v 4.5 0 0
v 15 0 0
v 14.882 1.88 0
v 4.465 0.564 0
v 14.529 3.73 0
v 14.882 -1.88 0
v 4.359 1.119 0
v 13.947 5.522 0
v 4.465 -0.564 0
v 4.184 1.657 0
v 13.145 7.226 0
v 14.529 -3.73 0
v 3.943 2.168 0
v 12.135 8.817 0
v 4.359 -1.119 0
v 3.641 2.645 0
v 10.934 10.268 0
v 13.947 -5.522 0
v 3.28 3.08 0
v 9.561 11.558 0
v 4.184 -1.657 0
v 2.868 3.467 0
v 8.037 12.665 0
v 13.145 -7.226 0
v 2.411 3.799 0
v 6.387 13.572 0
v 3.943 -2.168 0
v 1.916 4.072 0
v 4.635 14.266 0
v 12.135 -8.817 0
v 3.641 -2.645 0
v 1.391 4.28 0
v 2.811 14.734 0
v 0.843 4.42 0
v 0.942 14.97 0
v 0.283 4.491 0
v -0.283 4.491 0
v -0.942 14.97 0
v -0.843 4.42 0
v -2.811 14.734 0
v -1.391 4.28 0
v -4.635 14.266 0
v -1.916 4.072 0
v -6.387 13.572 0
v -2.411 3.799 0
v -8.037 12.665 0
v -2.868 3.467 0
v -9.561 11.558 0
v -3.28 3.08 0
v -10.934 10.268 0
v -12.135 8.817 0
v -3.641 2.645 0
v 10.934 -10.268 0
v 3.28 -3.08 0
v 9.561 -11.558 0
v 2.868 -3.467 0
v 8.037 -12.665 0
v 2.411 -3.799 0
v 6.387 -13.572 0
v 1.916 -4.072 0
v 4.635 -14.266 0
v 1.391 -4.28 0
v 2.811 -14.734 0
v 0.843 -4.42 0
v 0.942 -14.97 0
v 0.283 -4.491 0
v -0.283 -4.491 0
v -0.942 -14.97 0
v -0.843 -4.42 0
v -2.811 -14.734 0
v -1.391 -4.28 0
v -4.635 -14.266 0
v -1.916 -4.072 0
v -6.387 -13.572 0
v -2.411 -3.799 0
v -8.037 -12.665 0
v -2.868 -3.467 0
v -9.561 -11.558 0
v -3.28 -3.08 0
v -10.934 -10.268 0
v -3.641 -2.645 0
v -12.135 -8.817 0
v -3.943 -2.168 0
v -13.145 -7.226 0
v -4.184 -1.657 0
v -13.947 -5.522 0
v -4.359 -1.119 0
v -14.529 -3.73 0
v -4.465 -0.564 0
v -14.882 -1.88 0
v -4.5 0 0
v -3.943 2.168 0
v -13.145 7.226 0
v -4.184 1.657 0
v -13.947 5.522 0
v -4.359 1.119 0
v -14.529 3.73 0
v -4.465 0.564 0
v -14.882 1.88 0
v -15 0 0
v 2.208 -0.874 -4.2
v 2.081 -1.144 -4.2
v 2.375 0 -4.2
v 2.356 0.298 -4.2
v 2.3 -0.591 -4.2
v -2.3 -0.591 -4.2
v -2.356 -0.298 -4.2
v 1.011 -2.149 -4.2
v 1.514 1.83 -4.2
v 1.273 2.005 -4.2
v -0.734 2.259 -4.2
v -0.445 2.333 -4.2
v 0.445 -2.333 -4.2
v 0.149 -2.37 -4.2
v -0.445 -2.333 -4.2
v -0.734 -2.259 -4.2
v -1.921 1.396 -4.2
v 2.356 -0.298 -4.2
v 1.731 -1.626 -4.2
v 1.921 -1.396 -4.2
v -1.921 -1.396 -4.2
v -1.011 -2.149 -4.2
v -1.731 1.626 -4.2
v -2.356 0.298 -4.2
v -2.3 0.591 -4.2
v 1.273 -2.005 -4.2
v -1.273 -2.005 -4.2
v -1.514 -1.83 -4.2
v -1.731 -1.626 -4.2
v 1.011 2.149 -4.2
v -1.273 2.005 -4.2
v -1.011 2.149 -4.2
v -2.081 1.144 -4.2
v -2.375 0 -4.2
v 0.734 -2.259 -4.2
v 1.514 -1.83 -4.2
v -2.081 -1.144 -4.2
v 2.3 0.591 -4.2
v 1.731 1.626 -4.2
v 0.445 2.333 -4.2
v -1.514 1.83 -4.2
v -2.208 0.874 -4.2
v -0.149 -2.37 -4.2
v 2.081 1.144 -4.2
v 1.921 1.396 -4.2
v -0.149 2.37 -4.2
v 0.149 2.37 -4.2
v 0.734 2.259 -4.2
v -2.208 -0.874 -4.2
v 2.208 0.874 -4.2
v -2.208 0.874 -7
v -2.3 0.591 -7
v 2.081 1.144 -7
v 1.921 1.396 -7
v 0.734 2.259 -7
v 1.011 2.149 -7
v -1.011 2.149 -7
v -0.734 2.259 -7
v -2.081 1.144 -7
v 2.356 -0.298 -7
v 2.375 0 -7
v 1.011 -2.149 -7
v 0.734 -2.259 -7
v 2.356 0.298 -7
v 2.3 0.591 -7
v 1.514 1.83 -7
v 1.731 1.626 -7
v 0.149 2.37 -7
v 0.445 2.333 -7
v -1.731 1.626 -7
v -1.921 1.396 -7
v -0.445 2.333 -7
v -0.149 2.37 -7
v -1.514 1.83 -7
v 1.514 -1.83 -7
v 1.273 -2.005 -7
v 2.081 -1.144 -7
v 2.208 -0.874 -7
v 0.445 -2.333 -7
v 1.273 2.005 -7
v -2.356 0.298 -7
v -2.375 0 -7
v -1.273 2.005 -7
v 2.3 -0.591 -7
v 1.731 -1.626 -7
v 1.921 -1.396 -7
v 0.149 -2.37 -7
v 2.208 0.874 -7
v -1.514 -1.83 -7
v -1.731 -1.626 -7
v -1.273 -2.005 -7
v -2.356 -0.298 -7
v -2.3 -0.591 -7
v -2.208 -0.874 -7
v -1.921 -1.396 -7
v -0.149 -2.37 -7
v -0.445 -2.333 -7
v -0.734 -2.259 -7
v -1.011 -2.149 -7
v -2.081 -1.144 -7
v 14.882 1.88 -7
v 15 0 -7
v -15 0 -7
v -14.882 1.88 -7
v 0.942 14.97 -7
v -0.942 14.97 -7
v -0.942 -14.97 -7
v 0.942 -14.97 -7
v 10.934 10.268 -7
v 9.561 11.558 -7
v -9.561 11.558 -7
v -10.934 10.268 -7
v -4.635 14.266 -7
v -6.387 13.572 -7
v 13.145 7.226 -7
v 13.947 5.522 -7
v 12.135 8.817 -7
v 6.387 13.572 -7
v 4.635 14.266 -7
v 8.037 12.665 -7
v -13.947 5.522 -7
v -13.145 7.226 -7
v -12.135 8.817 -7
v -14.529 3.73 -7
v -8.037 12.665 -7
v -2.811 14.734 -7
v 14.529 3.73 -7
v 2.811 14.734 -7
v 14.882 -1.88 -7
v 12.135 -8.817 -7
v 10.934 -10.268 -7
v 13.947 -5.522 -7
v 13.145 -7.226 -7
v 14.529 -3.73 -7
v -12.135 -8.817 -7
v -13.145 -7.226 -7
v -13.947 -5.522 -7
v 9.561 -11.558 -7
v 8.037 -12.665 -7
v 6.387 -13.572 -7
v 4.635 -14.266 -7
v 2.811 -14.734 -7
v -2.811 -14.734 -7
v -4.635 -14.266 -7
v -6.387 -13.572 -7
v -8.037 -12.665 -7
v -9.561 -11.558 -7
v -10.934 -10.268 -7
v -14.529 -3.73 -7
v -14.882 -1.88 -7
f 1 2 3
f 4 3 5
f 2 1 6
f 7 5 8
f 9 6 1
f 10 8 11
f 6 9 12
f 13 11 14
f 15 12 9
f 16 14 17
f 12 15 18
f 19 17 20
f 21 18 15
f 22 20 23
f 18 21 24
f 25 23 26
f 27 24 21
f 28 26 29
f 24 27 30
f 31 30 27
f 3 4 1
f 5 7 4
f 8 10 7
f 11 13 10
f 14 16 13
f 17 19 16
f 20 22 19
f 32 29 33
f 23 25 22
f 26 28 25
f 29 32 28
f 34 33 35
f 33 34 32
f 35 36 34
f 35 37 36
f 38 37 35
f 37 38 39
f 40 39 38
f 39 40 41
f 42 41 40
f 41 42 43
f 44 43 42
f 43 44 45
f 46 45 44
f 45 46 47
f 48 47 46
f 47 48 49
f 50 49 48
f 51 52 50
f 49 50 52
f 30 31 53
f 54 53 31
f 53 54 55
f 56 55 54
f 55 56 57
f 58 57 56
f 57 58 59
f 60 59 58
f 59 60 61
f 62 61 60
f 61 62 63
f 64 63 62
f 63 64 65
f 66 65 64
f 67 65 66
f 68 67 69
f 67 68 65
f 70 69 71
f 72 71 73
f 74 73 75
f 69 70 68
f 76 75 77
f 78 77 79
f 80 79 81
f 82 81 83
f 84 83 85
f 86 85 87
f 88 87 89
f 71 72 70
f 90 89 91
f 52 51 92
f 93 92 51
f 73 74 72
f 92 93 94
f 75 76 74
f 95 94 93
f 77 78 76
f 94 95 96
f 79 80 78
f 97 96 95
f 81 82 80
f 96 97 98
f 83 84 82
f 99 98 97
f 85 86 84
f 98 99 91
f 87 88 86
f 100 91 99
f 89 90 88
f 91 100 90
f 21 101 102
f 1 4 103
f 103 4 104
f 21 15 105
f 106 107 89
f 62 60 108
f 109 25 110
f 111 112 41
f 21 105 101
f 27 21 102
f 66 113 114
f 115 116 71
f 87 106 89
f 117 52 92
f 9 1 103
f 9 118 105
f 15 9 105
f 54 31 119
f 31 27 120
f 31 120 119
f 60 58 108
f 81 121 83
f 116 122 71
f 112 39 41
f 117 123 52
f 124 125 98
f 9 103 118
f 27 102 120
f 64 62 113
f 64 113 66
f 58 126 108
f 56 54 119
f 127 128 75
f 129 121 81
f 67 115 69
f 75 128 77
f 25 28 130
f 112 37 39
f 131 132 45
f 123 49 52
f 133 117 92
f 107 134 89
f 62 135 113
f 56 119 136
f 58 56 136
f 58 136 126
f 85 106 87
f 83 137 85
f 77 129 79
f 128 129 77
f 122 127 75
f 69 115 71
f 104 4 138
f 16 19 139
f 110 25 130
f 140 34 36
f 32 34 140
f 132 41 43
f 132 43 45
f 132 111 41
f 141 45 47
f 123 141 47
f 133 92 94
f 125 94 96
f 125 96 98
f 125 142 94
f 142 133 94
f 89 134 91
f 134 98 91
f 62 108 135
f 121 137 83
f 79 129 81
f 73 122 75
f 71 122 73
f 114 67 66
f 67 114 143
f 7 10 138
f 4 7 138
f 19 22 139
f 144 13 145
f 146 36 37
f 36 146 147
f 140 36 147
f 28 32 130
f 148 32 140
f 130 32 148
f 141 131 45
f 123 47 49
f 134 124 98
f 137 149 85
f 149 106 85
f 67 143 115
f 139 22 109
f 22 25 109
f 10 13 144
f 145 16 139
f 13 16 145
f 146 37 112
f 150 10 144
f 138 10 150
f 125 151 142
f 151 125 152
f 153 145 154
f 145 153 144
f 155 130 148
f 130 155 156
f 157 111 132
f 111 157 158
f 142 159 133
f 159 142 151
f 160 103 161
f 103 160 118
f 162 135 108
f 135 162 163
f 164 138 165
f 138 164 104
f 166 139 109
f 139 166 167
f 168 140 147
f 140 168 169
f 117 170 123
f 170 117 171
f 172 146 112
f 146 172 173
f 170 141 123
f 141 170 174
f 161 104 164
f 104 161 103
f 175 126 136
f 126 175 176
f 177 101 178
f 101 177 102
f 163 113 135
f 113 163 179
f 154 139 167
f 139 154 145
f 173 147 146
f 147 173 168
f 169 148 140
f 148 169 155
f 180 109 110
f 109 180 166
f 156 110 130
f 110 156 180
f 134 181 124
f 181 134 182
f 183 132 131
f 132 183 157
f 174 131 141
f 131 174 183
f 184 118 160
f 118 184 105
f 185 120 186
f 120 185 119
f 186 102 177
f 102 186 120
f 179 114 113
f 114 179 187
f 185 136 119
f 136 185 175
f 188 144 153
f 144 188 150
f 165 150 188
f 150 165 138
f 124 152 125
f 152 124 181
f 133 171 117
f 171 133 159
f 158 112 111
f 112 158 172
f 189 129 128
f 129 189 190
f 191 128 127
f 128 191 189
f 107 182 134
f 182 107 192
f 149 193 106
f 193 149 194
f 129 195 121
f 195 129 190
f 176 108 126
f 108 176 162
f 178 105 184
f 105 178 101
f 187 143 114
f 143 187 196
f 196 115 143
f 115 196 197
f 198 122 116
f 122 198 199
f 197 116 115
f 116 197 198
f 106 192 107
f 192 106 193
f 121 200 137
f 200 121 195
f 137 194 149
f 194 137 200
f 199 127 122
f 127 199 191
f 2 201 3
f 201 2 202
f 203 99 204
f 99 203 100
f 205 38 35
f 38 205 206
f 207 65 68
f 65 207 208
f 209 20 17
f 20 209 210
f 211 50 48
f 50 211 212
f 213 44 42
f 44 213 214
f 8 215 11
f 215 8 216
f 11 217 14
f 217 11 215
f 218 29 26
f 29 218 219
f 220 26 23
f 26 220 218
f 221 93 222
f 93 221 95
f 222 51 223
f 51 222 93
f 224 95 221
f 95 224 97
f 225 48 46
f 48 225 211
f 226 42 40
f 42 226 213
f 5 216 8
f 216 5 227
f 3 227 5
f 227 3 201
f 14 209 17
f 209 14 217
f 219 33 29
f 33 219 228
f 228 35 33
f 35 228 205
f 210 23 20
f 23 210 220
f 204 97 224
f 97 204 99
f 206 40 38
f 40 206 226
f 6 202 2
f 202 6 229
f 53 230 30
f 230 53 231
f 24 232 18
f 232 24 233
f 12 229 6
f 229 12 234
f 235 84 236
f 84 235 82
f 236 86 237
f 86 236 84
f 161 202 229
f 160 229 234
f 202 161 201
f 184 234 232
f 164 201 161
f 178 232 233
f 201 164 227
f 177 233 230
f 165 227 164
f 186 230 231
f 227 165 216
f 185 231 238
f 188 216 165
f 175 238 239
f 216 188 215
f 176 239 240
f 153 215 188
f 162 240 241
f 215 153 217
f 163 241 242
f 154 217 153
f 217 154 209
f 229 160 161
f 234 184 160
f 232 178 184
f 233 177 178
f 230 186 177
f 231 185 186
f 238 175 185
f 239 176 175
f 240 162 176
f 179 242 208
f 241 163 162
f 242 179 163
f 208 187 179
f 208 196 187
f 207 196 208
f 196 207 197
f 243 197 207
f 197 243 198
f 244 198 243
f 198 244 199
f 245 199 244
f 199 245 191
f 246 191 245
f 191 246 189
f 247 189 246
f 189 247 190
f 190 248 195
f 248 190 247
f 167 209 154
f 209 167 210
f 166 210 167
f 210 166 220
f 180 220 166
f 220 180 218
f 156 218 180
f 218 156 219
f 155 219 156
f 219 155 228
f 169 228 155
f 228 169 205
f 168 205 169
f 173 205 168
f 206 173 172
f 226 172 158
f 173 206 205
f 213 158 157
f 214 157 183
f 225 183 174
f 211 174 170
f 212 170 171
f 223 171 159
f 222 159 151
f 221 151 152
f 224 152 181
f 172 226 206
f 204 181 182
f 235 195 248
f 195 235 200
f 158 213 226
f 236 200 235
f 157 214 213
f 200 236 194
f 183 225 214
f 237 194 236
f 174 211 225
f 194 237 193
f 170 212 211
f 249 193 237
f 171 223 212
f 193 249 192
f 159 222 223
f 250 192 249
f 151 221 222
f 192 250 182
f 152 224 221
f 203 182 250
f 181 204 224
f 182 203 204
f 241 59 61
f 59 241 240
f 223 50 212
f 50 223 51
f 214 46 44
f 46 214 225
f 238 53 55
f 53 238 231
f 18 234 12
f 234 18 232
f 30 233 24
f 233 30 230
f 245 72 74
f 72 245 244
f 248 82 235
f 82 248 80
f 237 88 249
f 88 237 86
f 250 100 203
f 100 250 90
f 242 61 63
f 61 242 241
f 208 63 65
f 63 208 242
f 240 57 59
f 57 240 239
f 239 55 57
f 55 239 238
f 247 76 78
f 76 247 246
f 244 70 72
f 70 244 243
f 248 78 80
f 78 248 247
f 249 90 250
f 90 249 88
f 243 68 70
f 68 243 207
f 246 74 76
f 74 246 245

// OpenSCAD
$fn = 50;


difference() {
	union() {
		translate(v = [0, 0, -7.0000000000]) {
			cylinder(h = 7, r = 15.0000000000);
		}
	}
	union() {
		translate(v = [0, 0, 0]) {
			rotate(a = [0, 0, 0]) {
				difference() {
					union() {
						#translate(v = [0, 0, -9.0000000000]) {
							cylinder(h = 9, r = 2.2500000000);
						}
						#translate(v = [0, 0, -4.2000000000]) {
							cylinder(h = 4.2000000000, r1 = 2.3750000000, r2 = 4.5000000000);
						}
						#translate(v = [0, 0, -9.0000000000]) {
							cylinder(h = 9, r = 2.3750000000);
						}
						#translate(v = [0, 0, -9.0000000000]) {
							cylinder(h = 9, r = 2.2500000000);
						}
					}
					union();
				}
			}
		}
	}
}
